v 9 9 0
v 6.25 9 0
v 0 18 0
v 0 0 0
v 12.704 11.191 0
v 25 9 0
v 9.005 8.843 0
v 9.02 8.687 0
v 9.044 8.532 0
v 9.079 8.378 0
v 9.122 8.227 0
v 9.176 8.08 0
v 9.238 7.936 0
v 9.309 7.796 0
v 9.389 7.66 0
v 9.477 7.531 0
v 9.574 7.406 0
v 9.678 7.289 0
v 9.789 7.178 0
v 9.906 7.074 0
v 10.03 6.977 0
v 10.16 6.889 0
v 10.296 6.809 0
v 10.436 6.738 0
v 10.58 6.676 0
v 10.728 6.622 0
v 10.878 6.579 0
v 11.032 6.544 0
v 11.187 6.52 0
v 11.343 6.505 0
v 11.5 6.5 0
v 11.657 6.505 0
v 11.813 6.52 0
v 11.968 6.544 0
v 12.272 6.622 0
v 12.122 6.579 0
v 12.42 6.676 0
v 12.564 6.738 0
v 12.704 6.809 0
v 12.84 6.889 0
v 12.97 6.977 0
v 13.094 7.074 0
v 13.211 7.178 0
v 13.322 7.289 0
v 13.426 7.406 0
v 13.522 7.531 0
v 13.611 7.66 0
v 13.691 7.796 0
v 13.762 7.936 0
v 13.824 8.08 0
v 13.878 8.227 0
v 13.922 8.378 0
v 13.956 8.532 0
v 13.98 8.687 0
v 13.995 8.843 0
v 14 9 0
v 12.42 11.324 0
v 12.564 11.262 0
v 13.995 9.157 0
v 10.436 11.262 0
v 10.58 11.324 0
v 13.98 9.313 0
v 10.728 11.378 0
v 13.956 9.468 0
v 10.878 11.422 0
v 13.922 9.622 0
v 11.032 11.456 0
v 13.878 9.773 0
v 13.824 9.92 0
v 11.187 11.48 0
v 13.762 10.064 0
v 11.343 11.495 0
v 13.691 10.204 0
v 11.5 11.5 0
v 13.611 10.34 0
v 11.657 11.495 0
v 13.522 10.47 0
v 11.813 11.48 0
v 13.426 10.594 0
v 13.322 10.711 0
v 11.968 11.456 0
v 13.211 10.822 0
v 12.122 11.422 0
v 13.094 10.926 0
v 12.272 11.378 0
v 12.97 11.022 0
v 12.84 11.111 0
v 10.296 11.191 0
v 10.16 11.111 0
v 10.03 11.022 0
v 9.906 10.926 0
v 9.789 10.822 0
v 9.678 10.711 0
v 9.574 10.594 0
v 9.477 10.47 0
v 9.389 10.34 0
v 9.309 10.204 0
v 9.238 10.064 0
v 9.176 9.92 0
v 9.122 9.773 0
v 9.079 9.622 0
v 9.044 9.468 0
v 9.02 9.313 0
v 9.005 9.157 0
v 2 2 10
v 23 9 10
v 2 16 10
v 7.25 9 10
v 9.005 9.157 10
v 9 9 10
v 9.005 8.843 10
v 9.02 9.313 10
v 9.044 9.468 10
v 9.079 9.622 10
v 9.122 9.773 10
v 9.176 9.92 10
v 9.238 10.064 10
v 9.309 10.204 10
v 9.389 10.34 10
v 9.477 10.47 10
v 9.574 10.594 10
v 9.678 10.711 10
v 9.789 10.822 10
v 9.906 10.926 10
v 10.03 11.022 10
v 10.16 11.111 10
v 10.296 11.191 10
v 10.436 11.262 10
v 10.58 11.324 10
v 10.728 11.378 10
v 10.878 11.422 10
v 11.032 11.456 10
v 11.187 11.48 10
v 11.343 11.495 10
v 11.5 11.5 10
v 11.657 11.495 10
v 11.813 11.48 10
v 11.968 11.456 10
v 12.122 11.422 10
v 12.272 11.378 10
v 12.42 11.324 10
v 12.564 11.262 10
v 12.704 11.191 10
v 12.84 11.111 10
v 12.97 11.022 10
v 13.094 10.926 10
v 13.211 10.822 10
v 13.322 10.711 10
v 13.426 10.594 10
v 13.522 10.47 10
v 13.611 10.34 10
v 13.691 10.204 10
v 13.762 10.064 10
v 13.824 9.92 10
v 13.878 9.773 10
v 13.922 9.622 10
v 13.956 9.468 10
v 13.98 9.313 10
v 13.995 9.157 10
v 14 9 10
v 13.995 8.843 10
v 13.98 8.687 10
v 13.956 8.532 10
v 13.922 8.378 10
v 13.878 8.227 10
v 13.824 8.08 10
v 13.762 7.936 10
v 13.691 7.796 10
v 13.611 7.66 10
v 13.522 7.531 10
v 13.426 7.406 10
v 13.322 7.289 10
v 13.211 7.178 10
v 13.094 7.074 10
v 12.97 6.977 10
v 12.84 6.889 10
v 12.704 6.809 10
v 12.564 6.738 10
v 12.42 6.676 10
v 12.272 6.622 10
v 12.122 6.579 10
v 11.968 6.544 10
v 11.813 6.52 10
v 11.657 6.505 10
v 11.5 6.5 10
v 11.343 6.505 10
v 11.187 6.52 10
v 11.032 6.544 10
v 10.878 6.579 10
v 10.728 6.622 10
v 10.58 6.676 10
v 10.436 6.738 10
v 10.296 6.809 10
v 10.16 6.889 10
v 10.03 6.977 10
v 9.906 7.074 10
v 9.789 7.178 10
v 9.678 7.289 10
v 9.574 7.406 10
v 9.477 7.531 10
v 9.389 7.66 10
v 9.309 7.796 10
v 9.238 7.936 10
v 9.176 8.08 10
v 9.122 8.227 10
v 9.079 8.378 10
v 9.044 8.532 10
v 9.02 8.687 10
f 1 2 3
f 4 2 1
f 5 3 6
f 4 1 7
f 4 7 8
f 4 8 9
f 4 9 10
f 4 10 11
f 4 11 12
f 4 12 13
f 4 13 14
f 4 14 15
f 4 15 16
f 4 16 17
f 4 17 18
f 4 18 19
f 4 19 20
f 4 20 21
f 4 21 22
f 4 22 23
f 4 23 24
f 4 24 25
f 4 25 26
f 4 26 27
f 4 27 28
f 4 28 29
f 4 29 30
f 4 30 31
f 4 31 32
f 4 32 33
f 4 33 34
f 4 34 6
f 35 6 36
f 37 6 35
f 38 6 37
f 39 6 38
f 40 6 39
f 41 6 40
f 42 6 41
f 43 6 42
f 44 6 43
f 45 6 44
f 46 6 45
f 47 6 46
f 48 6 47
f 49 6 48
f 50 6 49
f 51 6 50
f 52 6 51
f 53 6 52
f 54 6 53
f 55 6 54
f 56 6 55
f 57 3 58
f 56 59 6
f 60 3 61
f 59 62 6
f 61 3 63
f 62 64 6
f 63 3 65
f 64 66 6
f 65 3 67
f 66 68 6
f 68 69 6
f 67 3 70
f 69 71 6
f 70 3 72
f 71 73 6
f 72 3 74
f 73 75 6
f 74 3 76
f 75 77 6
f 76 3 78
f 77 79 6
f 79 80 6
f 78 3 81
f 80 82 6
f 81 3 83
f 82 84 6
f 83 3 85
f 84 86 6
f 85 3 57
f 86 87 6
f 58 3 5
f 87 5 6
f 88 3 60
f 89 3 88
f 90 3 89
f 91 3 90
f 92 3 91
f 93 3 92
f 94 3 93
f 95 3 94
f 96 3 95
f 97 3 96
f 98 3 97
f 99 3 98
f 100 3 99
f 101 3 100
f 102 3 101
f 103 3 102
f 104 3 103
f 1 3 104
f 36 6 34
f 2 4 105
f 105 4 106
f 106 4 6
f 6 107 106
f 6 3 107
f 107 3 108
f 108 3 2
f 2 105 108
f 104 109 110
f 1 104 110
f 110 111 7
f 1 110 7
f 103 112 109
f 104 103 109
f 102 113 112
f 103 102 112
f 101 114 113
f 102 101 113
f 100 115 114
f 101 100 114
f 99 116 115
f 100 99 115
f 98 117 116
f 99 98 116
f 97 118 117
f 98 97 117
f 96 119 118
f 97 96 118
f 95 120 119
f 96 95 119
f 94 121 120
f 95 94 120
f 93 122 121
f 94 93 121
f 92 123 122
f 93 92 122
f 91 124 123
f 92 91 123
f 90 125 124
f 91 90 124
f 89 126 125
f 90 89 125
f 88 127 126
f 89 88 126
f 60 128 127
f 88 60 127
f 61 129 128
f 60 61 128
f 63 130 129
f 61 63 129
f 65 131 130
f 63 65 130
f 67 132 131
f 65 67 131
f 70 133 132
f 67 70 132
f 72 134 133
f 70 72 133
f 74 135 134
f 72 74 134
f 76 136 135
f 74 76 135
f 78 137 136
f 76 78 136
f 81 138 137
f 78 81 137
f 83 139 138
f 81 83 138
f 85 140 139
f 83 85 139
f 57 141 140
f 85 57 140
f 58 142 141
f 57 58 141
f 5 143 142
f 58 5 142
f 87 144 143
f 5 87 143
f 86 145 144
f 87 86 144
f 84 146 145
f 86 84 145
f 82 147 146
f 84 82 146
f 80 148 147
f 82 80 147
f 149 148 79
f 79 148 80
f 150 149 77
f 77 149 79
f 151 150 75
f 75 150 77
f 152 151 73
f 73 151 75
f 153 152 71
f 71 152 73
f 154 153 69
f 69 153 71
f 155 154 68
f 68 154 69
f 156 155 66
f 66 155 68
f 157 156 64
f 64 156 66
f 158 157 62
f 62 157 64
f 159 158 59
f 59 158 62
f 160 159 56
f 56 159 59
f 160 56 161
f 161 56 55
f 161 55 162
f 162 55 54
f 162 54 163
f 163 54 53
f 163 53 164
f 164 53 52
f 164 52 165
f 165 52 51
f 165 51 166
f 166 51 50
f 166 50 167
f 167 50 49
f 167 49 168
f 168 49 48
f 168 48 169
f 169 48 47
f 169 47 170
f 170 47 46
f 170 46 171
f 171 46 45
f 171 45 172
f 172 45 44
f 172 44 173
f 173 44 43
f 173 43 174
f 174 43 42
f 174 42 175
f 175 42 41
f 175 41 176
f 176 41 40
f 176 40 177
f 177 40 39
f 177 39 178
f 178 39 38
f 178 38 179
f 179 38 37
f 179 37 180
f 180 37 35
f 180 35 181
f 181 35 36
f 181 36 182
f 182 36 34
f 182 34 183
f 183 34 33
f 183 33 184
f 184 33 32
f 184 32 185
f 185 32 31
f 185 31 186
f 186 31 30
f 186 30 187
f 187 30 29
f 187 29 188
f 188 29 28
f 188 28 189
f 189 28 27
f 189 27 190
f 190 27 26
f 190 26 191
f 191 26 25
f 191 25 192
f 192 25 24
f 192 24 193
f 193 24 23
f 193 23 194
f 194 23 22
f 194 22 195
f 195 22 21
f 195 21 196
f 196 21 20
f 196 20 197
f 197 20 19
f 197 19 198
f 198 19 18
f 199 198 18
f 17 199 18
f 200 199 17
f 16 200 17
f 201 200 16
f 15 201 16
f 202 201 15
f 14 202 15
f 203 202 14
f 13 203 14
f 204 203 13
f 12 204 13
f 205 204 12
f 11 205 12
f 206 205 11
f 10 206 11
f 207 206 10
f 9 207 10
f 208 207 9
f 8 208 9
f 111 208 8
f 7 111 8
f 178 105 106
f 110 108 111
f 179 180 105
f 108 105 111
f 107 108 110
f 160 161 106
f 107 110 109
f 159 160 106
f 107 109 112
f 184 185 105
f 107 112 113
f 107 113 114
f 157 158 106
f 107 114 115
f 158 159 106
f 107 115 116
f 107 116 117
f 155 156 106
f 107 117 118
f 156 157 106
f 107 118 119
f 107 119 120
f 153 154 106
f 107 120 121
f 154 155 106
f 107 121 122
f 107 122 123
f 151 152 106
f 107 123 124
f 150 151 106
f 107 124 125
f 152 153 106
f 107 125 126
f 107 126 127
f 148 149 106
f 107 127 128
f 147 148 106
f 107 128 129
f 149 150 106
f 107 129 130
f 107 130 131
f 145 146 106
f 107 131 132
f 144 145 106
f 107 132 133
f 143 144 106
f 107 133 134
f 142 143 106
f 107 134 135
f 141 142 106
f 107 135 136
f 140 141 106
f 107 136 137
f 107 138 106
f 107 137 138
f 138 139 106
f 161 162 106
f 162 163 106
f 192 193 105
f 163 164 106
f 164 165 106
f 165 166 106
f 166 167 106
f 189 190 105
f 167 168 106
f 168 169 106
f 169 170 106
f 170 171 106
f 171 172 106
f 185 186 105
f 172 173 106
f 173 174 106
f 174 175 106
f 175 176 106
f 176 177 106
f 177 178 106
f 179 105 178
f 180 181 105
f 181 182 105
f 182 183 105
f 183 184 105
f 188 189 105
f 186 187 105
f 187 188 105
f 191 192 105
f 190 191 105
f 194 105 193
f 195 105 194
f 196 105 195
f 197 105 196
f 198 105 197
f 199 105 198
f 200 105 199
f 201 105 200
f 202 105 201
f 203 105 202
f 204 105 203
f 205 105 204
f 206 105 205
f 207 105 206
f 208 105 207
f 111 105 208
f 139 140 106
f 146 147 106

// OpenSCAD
$fn=100;
x = 25;
y = 18;
z=10;
ts = 2; //top smaller by
r = 5; //hole rad

difference() {

	polyhedron(
		points = [[0,0,0], [x/4,y/2,0],[0,y,0],[x,y/2,0],[ts,ts,z],[(x/4)+(ts/2),y/2,z],[ts,y-ts,z],[x-ts,y/2,z]],
		triangles = [[0,4,7],[0,7,3],[1,5,4],[1,4,0],[2,6,5],[2,5,1],[3,7,6],[3,6,2],[2,1,3],[1,0,3],[4,5,7],[5,6,7]	]);
	translate([(x/2)-(ts/2),(y/2),-.1]) cylinder(z+.2, r/2,r/2);
}
